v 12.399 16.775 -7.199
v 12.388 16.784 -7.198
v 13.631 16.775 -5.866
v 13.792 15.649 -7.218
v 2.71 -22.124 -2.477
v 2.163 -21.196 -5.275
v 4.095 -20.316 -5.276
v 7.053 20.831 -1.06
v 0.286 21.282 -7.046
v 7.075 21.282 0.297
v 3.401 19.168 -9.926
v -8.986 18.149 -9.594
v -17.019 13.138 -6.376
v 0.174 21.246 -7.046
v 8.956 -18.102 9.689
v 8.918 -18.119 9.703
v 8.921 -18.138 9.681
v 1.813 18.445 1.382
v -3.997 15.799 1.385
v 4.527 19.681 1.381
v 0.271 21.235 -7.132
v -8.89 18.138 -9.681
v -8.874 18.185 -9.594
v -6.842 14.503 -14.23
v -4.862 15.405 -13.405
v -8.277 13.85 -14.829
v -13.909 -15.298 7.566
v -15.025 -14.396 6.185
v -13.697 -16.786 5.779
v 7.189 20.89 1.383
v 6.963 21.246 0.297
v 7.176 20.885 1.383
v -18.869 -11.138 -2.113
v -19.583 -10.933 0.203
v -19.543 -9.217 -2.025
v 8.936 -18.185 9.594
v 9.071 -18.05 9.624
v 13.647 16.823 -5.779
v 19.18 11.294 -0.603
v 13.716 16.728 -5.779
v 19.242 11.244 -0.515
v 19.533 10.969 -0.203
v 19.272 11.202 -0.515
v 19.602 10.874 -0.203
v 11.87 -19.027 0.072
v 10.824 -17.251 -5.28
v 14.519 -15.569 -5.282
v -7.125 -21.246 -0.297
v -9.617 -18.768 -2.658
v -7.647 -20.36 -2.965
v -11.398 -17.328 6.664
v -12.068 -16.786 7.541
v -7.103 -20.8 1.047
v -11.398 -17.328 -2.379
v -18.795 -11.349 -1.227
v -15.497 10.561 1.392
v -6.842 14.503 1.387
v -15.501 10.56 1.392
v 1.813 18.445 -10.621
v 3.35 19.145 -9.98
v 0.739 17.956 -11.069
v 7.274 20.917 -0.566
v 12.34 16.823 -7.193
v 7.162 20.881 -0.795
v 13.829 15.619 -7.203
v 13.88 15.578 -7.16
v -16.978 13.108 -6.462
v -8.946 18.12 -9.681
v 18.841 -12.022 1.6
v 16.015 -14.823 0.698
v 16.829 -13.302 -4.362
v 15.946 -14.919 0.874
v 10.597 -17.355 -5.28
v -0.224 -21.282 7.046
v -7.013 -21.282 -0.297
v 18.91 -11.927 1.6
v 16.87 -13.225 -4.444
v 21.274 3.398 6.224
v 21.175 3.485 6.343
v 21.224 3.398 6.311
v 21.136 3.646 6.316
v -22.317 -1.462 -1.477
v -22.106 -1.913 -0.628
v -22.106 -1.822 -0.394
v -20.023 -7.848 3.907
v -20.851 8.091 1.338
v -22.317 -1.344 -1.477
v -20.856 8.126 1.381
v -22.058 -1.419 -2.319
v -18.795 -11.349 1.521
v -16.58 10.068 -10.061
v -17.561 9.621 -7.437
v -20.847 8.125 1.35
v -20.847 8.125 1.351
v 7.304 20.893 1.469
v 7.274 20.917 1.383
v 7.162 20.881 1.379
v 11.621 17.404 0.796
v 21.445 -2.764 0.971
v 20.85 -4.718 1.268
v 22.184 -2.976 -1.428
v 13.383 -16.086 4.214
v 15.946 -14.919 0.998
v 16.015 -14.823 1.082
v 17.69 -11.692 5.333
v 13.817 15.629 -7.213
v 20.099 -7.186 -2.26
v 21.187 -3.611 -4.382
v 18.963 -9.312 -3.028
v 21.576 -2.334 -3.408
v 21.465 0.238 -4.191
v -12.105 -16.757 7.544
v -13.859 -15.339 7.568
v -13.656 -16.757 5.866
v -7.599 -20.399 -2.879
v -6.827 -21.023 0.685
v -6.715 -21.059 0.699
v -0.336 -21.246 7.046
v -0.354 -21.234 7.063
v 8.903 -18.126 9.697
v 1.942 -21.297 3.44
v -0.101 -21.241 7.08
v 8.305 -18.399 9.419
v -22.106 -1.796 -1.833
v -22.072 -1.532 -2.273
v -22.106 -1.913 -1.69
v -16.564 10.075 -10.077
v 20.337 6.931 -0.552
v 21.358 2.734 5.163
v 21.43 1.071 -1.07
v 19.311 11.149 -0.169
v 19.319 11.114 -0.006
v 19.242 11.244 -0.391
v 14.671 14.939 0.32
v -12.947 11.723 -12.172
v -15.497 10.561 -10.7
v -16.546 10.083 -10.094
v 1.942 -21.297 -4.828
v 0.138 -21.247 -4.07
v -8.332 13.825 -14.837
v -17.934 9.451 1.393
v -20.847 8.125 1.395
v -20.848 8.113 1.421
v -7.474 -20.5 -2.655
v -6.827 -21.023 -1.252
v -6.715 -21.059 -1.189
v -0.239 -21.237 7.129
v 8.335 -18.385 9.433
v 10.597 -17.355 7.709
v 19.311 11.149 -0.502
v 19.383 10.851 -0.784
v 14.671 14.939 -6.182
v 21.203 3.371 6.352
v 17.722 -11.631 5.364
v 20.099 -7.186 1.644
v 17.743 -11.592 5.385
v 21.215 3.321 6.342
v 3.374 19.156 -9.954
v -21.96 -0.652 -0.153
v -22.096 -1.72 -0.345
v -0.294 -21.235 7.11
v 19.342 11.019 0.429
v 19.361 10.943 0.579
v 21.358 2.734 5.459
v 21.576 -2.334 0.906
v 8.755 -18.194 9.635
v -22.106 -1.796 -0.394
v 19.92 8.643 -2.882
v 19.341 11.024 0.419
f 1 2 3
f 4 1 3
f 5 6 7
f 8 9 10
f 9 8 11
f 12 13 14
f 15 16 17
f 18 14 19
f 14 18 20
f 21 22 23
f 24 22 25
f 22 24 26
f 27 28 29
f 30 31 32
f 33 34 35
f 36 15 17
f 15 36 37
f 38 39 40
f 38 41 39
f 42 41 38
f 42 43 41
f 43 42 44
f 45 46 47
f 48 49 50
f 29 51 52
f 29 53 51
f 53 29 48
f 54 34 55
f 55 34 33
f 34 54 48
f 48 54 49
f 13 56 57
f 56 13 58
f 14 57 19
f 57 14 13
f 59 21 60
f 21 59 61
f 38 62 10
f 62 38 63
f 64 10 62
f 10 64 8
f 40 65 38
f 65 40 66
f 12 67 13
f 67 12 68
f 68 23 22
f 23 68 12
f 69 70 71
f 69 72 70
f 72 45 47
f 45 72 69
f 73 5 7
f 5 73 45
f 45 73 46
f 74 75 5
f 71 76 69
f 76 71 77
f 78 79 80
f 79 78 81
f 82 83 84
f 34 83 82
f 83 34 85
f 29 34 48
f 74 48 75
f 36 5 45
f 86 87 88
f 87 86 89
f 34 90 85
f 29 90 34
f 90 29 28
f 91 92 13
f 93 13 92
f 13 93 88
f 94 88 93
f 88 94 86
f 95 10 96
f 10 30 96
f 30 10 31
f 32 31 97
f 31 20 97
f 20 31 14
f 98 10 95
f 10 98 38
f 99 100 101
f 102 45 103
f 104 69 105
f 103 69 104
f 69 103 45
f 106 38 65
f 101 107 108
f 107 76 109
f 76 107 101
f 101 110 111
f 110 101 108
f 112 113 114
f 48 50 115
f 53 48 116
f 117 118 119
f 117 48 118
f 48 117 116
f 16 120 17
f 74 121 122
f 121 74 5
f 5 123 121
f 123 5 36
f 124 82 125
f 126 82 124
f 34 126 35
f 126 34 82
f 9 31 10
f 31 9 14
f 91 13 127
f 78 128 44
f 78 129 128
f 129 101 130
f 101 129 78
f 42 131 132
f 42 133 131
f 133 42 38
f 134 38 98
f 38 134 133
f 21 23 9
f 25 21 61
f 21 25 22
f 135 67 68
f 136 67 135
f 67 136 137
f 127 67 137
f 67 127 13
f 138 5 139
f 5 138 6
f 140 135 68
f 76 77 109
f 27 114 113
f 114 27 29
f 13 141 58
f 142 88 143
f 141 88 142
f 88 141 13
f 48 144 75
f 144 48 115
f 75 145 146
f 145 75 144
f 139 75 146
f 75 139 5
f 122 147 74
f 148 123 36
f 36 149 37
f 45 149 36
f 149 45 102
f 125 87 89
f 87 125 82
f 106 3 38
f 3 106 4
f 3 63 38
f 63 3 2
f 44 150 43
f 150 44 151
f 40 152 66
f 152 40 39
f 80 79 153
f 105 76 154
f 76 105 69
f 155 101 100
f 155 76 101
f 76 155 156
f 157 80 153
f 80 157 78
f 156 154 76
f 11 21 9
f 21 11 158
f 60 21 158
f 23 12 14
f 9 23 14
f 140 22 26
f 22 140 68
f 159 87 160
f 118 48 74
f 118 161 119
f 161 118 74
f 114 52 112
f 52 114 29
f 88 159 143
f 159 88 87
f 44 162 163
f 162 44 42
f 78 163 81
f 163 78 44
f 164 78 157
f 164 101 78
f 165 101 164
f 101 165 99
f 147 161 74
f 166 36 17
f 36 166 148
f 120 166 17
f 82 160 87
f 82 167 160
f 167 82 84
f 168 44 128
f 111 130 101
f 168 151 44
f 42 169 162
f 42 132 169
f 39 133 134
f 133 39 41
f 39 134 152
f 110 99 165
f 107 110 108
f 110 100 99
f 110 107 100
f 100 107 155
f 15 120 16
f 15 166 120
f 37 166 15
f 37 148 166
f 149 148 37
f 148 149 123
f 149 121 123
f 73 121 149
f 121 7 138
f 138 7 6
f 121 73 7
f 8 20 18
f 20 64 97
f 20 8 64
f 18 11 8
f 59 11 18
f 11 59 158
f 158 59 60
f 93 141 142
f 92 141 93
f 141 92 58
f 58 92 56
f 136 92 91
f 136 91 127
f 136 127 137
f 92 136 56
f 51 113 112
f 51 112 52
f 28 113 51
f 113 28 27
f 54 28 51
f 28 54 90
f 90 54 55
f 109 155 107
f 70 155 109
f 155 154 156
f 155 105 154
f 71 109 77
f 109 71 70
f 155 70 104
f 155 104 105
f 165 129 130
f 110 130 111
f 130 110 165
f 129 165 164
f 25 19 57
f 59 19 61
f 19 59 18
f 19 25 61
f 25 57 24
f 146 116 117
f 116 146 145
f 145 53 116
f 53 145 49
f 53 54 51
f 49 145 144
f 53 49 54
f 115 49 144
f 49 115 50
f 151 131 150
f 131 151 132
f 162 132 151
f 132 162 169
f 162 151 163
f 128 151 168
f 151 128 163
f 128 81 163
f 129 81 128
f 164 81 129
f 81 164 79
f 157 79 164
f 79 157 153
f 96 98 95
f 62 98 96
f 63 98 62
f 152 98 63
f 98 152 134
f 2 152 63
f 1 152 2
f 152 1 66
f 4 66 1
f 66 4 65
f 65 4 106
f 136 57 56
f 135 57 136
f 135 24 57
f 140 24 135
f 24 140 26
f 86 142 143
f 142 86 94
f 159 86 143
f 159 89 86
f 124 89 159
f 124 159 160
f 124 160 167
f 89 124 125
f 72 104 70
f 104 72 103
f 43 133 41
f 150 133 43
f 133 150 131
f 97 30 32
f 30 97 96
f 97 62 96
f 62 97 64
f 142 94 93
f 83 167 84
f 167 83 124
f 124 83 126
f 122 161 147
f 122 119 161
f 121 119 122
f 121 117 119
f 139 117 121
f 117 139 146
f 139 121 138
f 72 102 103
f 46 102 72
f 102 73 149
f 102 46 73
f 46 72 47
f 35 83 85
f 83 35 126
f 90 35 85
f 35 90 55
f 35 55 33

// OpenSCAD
// Auto-generated OpenSCAD file

    inner_points = 10*[[-0.6761707289295088, 1.4443912429777448, 1.6180428150467039], [1.2603258031723903, -0.12076505073214727, -1.8089878045154844], [-0.4714605992542724, 0.6029023975518815, 2.1180331007845328], [1.465035932847627, -0.9622538961580105, -1.3089975187776557], [-1.541683511369511, 1.050210284169558, 1.3089975187776557], [0.3948130207323881, -0.514946009540334, -2.1180331007845328], [-1.3369733816942744, 0.20872143874369475, 1.8089878045154844], [0.5995231504076245, -1.3564348549661973, -1.6180428150467039], [1.463934226922532, 1.4843529255560477, 0.8090793922871596], [1.921079046691184, 1.1148696448288868, 6.720509726276802e-05], [1.2820322182132897, -0.6276002421239685, 1.6708412238007613], [1.7391770379819418, -0.9970835228511294, 0.8618290366108644], [-2.202436754888304, -0.18542441139147592, -0.5000574908350913], [-1.7452919351196523, -0.5549076921186369, -1.3090696780249882], [-1.1317568977713777, -1.7269135363970753, 0.8089588950643893], [-0.674612078002726, -2.0963968171242366, -5.329212550742035e-05], [0.18942199934983583, 1.838629008812172, -1.308979864697917], [0.5994432045682823, -1.3564916619924376, 1.6180251609669651], [1.0565880243369343, -1.7259749427195985, 0.8090129737770685], [-0.6760907830901666, 1.4444480500039851, -1.6180251609669651], [-0.26606957787172014, -1.7506726208006245, 1.308979864697917], [0.1910752418969318, -2.1201559015277853, 0.49996767750802007], [0.5206899199254378, 0.4770998592723383, -2.118012576336173], [-0.5973374984473221, -0.3891434712607908, 2.118012576336173], [1.0566279972566053, -1.7259465392064783, -0.8090210142297662], [0.9289932050541309, 1.2407181409580579, 1.6180788946703704], [2.1258138809894067, 0.2733983537395316, -0.49994250870567225], [-2.202461459511291, -0.1854419657279841, 0.49994250870567225], [-1.005640783576015, -1.1527617529465104, -1.6180788946703704], [0.7243230482985655, 2.082235389897041, -0.4999453790742929], [1.9428501392747406, 0.6080804112866934, 0.8618622458659101], [-1.5416188338268535, 1.050256242019186, -1.3090364687699425], [-1.871368076395344, -1.1290310720560819, -0.500065876297063], [0.18935732180717835, 1.8385830509625434, 1.3090541228496813], [1.6687090341404256, 0.6429100379798126, -1.3089643095226098], [0.5205852694631093, 0.47702549790959015, 2.1180553992182594], [1.9999369817963566, -0.7186475150731406, -0.4999630331540315], [-2.0765845603182407, 0.8066039030846881, 0.4999630331540315], [-0.5972328479849937, -0.38906910989804266, -2.1180553992182594], [-1.7453566126623097, -0.5549536499682651, 1.3089643095226098], [-0.26600490032906265, -1.750626662950996, -1.3090541228496813], [0.7242983436755794, 2.082217835560533, 0.5000546204664706], [1.463974199842203, 1.4843813290691679, -0.8089545957196747], [1.4079091174063396, 0.3644456266887037, 1.6708617482491208], [2.1475849735729633, -0.2333908798026617, 0.3618525320629751], [-2.0765598556952543, 0.8066214574211964, -0.5000369663867321], [-1.336883999528631, 0.20878495092983085, -1.8090461825728774], [-1.8713927810183302, -1.1290486263925898, 0.4999341232437007], [-1.1317169248517065, -1.7268851328839554, -0.8090750929424451], [0.9290731508934732, 1.2407749479842982, -1.6179890813432987], [0.39470837027005956, -0.5150203709030822, 2.1180348747699], [1.591529046205335, -1.4823401581216085, 1.3471393857822367e-05], [-0.47135594879194387, 0.6029767589146297, -2.1180348747699], [-1.0057207294153574, -1.1528185599727507, 1.6179890813432987], [0.19109994651991802, -2.120138347191277, -0.5000323220327436]];

    outer_points = 10*[[0.02552547509395009, 2.1187272483769695, -0.7045645993136277], [-1.3615932646610294, -1.6727578892770014, 0.5779384076102413], [0.6827172728374509, 1.6727578892770014, -1.3121913529400864], [-0.7044014669175285, -2.1187272483769695, -0.029688346016217504], [0.7044014669175285, 2.1187272483769695, 0.029688346016217504], [-0.6827172728374509, -1.6727578892770014, 1.3121913529400864], [1.3615932646610294, 1.6727578892770014, -0.5779384076102413], [-0.02552547509395009, -2.1187272483769695, 0.7045645993136277], [-1.6027511659773777, 0.6705087936332265, -1.4027382632260594], [-1.9302054814233927, -0.22453943453325823, -1.099980372244143], [0.315133473353602, -0.29761058586558886, -2.1904763889740115], [-0.012320842092413131, -1.1926588140320735, -1.8877184979920947], [1.273013683679892, 0.6705087936332265, 1.7076071258706018], [0.945559368233877, -0.22453943453325823, 2.0103650168525182], [2.2084197579852707, -0.29761058586558886, -0.1427518448945897], [1.8809654425392557, -1.1926588140320735, 0.16000604608732683], [-1.8951197183831776, 0.4970541464314976, 1.0712265894806337], [1.2162437265595991, -0.4970541464314976, -1.8054795348104788], [0.8887894111135841, -1.3921023745979824, -1.5027216438285624], [-1.2162437265595991, 0.4970541464314976, 1.8054795348104788], [1.8951197183831776, -0.4970541464314976, -1.0712265894806337], [1.5676654029371626, -1.3921023745979824, -0.7684686984987172], [-1.4526456533333216, -1.0353759855059943, 1.3430879167013183], [1.4526456533333216, 1.0353759855059943, -1.3430879167013183], [0.26790481028680946, -2.2029389255707184, -0.24769957676650906], [-0.7994549424817525, 1.1716333414551139, -1.7245912807479955], [-1.6567414700822498, -1.1716333414551139, -0.9319608317951029], [1.6567414700822498, 1.1716333414551139, 0.9319608317951029], [0.7994549424817525, -1.1716333414551139, 1.7245912807479955], [-2.077531341052028, 0.8067661495823462, 0.13805753994051662], [-1.258091130637894, -0.16135322991646922, -1.8377268076908435], [-0.3002109203116041, 0.8067661495823462, 2.06035670715377], [1.7336395829106201, -0.16135322991646922, 1.3980439582719861], [-0.8905073311540451, 1.809015245226121, -0.9594417716569185], [-1.9501717554630091, -1.0874216642613652, 0.020303344285033886], [0.1728513347225853, 1.0874216642613652, -1.9426025114982872], [-0.8868130895863787, -1.809015245226121, -0.9628573955563348], [0.8868130895863787, 1.809015245226121, 0.9628573955563348], [-0.1728513347225853, -1.0874216642613652, 1.9426025114982872], [1.9501717554630091, 1.0874216642613652, -0.020303344285033886], [0.8905073311540451, -1.809015245226121, 0.9594417716569185], [-1.6938035546496701, 1.3078906974042335, -0.6375887541349824], [-2.2236357668041524, -0.14032775733950953, -0.1477161961640061], [-0.454794907142269, 0.33977131790541826, -2.15957982521278], [-0.9846271192967511, -1.1084471368383249, -1.6697072672418034], [0.503085303184021, 1.3078906974042335, 1.7385036896318335], [-0.02674690897046106, -0.14032775733950953, 2.22837624760281], [2.117367369312978, 0.33977131790541826, 0.6223976641964872], [1.5875351571584961, -1.1084471368383249, 1.1122702221674634], [-2.041224144135302, -0.4500397604903581, 0.7854528533761111], [0.9427797152184564, 0.4500397604903581, -1.9734990752595192], [0.0854931876179591, -1.8932269224198697, -1.1808686263066264], [-0.9427797152184564, -0.4500397604903581, 1.9734990752595192], [2.041224144135302, 0.4500397604903581, -0.7854528533761111], [1.1839376165348048, -1.8932269224198697, 0.00717759557678177]];

    // Convex hull for inner set (I)
    module inner_hull() {
        hull() {
            for (p = inner_points) {
                translate(p) sphere(r=0.1);
            }
        }
    }

    // Convex hull for outer set (O) minus inner hull (O \ I)
    module outer_minus_inner() {
        difference() {
            hull() {
                for (p = outer_points) {
                    translate(p) sphere(r=0.1);
                }
            }
            inner_hull(); // Subtract inner hull
        }
    }

    // Convex hull for outer set (O) minus all translated inner hulls
    module outer_minus_AllTranslationInner() {
        difference() {
            hull() {
                for (p = outer_points) {
                    translate(p) sphere(r=0.1);
                }
            }
            hull() {
                translate([0,0,50]) inner_hull();
                translate([0,0,-50]) inner_hull();
            }; // Subtract translated inner hulls
        }
    }

    // Difference between outer_minus_inner and outer_minus_AllTranslationInner
    module outer_minus_inner_diff() {
        difference() {
            // Outer minus inner
            difference() {
                hull() {
                    for (p = outer_points) {
                        translate(p) sphere(r=0.1);
                    }
                }
                inner_hull();
            }

            // Subtract Outer minus AllTranslationInner
            difference() {
                hull() {
                    for (p = outer_points) {
                        translate(p) sphere(r=0.1);
                    }
                }
                hull() {
                    translate([0,0,50]) inner_hull();
                    translate([0,0,-50]) inner_hull();
                };
            }
        }
    }

    // Rendering all with colors applied
    color([0, 1, 0, 1]) outer_minus_AllTranslationInner(); // Opaque green
    
